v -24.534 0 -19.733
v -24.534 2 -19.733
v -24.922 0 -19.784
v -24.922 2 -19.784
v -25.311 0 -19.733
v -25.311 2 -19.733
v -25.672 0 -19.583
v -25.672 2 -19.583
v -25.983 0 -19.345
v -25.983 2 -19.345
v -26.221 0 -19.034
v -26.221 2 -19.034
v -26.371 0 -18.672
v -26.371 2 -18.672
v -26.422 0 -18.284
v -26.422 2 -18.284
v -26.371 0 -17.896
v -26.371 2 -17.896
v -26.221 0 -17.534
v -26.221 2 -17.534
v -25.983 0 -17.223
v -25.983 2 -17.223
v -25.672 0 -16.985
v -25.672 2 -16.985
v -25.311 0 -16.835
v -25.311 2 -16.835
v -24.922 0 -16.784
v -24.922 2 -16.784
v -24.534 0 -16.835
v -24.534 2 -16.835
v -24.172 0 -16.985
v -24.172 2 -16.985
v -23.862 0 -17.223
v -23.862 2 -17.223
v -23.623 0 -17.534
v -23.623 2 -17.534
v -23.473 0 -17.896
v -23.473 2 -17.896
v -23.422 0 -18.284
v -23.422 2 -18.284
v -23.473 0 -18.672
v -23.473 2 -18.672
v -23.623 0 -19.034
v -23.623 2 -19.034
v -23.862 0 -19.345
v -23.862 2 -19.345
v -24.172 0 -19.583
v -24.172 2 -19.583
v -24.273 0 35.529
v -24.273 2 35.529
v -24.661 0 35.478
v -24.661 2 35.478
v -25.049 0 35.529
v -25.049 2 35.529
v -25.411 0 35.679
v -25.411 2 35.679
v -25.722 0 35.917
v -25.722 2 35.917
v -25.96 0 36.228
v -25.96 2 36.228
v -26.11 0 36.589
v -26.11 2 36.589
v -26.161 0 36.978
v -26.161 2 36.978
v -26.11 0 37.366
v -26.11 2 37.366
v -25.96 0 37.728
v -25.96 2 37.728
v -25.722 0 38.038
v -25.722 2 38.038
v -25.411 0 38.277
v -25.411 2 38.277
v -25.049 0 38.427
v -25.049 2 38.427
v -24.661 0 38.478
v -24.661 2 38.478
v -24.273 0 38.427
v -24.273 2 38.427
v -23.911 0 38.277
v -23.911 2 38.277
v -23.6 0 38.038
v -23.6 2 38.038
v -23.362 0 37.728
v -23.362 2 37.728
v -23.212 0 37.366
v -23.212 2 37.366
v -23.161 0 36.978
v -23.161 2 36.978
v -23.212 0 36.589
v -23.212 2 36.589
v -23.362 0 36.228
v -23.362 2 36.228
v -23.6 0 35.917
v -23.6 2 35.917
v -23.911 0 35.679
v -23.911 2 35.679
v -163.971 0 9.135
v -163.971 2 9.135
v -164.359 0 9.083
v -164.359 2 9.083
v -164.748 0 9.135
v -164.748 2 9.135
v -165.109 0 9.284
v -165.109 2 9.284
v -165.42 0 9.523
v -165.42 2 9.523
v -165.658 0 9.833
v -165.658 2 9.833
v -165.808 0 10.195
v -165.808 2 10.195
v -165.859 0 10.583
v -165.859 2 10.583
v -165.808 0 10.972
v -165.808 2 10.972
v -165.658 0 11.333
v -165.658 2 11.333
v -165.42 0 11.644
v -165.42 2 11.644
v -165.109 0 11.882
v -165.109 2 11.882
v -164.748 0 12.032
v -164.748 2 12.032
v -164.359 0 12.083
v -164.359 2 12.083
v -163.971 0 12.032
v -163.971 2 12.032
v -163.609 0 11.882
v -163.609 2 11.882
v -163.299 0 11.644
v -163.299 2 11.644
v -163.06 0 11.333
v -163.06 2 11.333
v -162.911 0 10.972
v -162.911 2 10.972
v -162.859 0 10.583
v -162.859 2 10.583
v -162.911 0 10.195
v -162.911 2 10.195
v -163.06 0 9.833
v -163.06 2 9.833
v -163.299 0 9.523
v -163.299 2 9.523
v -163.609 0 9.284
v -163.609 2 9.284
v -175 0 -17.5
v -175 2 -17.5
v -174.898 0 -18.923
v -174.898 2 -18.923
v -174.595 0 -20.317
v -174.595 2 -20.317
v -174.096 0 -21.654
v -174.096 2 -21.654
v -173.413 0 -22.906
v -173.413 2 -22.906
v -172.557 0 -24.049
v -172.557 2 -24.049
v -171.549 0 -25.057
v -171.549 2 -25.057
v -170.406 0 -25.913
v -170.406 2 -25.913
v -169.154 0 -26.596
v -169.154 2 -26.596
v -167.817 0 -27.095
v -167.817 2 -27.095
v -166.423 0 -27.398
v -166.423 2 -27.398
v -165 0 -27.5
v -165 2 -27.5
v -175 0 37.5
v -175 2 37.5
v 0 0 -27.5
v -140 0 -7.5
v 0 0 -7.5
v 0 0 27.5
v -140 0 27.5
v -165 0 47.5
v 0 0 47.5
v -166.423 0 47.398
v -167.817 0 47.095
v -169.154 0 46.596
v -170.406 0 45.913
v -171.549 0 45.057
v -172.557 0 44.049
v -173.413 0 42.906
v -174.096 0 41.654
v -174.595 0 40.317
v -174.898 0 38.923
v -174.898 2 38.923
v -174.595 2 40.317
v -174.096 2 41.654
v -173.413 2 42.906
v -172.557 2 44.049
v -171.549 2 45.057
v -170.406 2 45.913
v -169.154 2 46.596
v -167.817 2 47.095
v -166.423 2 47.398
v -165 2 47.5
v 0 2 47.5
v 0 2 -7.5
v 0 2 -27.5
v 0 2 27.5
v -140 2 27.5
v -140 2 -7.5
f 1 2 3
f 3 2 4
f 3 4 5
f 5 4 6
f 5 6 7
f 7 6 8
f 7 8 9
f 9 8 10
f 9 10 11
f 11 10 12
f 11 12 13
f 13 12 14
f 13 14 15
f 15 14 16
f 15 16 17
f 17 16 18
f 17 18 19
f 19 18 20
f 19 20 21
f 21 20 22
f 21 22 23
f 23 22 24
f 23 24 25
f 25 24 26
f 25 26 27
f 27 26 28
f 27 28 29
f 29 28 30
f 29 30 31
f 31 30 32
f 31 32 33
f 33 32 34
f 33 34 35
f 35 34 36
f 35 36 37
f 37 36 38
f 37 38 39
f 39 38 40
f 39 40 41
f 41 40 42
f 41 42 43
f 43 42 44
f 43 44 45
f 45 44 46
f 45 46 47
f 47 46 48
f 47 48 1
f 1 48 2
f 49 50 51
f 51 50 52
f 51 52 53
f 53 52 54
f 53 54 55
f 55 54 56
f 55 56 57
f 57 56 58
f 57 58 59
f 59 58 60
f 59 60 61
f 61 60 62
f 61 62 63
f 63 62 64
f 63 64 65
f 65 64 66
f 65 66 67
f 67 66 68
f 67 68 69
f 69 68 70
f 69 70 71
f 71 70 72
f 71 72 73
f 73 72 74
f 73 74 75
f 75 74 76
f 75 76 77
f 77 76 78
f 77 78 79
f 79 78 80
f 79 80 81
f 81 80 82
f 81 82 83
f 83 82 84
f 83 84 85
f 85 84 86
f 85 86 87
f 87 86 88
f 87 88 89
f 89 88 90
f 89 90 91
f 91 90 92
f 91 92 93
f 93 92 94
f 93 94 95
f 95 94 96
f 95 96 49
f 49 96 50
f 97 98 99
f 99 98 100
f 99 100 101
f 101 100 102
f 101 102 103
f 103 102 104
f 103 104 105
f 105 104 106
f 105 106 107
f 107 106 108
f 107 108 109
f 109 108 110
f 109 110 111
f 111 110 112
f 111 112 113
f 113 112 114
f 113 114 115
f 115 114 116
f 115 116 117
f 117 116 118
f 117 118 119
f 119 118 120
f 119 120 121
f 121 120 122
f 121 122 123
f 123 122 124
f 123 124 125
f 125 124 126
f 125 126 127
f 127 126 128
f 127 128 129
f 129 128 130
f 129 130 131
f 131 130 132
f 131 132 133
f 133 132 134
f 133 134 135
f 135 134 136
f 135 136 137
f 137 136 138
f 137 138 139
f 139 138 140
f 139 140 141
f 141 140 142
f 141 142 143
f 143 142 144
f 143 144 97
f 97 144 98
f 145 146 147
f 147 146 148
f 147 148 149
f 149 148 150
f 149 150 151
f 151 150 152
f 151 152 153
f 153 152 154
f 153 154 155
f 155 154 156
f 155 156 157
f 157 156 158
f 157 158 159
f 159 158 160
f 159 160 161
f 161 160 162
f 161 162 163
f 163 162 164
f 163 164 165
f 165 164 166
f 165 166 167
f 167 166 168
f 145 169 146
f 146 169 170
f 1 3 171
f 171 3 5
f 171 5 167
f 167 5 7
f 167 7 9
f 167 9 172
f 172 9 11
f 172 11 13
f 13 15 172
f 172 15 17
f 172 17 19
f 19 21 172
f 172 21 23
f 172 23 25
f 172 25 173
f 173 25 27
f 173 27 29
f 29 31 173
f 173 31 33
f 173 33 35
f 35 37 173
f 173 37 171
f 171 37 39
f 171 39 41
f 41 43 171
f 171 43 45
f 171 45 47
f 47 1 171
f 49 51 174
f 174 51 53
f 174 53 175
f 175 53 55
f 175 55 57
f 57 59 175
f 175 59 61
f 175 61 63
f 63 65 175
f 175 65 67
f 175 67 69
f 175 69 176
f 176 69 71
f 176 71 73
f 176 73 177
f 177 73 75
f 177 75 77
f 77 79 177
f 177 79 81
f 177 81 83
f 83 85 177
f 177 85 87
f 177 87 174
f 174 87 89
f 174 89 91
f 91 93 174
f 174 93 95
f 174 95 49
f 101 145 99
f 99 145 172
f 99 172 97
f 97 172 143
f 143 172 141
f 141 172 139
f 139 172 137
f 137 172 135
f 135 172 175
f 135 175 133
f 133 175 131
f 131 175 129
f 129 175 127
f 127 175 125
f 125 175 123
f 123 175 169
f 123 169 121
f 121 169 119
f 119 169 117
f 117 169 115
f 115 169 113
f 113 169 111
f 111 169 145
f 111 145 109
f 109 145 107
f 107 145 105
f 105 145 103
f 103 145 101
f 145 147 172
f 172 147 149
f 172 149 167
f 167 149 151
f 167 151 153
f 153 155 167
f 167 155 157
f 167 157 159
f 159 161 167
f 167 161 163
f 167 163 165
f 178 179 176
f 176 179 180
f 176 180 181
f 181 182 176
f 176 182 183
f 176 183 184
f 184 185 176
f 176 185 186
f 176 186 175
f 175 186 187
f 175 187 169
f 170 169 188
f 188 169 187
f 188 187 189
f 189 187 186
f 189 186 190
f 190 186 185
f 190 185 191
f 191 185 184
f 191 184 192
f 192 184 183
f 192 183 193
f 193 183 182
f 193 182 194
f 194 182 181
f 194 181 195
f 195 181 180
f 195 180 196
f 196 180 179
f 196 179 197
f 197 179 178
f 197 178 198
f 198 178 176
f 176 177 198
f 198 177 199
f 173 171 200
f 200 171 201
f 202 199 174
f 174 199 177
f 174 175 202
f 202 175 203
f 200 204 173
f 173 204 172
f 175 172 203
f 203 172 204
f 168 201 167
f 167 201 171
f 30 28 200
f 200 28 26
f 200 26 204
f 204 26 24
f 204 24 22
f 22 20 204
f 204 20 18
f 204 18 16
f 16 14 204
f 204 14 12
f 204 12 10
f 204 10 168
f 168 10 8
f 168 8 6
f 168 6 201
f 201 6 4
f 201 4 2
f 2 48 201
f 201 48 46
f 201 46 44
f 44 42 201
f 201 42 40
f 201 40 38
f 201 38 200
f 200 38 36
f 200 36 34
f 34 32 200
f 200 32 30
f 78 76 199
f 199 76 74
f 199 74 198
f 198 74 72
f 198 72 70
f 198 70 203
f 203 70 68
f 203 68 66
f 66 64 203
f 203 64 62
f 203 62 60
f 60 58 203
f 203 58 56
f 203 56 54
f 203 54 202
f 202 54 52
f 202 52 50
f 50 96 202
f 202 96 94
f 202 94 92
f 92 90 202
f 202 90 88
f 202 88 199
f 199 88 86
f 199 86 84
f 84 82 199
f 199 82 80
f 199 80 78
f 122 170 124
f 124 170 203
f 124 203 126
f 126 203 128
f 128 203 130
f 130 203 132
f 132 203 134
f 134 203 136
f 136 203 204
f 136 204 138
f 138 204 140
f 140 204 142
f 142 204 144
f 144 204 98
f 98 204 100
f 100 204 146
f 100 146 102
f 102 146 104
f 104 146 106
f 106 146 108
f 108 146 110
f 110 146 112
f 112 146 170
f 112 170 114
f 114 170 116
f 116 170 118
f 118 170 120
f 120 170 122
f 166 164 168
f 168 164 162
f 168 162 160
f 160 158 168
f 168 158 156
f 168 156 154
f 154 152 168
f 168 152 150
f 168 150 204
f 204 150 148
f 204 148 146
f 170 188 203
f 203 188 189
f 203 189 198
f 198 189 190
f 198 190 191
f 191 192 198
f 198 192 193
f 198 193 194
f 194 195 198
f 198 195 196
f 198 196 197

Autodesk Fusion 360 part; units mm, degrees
sketch "Sketch1" plane through (0, 0, 0) normal (0, 1, 0) x (1, 0, 0)
  line L0 (140, -17.5) -> (-140, -17.5)
  line L1 (-140, -17.5) -> (-140, 17.5)
  line L2 (-140, 17.5) -> (140, 17.5)
  line L3 (140, 17.5) -> (140, -17.5)
  line L4 (140, -17.5) -> (-140, 17.5) construction
  line L5 (-140, -17.5) -> (140, 17.5) construction
  line L6 (150, -27.5) -> (-150, -27.5)
  line L7 (-150, -27.5) -> (-150, 27.5)
  line L8 (-150, 27.5) -> (150, 27.5)
  line L9 (150, 27.5) -> (150, -27.5)
  line L10 (150, -27.5) -> (-150, 27.5) construction
  line L11 (-150, -27.5) -> (150, 27.5) construction
  dimension "d1" = 280
  dimension "d2" = 35
  dimension "d3" = 300
  dimension "d4" = 55
extrude "Extrude1" add sketch "Sketch1" along normal blind 2
sketch "Sketch2" plane through (0, 0, 27.5) normal (0, 0, 1) x (1, 0, 0)
  line L0 (-150, 0) -> (150, 0)
  line L1 (150, 0) -> (150, 2)
  line L2 (150, 2) -> (-150, 2)
  line L3 (-150, 2) -> (-150, 0)
extrude "Extrude2" add sketch "Sketch2" along normal blind 20
move_face "OffsetFaces1" offset 25 1 faces at (-150, 0.6667, 22.5)
sketch "Sketch3" plane through (0, 0, 0) normal (0, 1, 0) x (1, 0, 0)
  line L0 (155, -50) -> (0, -50)
  line L1 (0, -50) -> (0, 50)
  line L2 (0, 50) -> (155, 50)
  line L3 (155, 50) -> (155, -50)
extrude "Extrude3" cut sketch "Sketch3" along normal blind 60
fillet "Fillet1" radius 10 1 edges at (-175, 1, 47.5)
fillet "Fillet2" radius 10 1 edges at (-175, 1, -27.5)
move_face "OffsetFaces2" offset -10 1 faces at (-46.6667, 0.6667, 17.5)
move_face "OffsetFaces3" offset 10 1 faces at (-93.3333, 0.6667, -17.5)
hole "Hole1" at (-164.3594, 2, 10.5834) direction (0, -1, 0) diameter 3 depth 5 tip angle 118
hole "Hole2" at (-24.6611, 2, 36.9776) direction (0, -1, 0) diameter 3 depth 5 tip angle 118
hole "Hole3" at (-24.9224, 2, -18.284) direction (0, -1, 0) diameter 3 depth 5 tip angle 118
